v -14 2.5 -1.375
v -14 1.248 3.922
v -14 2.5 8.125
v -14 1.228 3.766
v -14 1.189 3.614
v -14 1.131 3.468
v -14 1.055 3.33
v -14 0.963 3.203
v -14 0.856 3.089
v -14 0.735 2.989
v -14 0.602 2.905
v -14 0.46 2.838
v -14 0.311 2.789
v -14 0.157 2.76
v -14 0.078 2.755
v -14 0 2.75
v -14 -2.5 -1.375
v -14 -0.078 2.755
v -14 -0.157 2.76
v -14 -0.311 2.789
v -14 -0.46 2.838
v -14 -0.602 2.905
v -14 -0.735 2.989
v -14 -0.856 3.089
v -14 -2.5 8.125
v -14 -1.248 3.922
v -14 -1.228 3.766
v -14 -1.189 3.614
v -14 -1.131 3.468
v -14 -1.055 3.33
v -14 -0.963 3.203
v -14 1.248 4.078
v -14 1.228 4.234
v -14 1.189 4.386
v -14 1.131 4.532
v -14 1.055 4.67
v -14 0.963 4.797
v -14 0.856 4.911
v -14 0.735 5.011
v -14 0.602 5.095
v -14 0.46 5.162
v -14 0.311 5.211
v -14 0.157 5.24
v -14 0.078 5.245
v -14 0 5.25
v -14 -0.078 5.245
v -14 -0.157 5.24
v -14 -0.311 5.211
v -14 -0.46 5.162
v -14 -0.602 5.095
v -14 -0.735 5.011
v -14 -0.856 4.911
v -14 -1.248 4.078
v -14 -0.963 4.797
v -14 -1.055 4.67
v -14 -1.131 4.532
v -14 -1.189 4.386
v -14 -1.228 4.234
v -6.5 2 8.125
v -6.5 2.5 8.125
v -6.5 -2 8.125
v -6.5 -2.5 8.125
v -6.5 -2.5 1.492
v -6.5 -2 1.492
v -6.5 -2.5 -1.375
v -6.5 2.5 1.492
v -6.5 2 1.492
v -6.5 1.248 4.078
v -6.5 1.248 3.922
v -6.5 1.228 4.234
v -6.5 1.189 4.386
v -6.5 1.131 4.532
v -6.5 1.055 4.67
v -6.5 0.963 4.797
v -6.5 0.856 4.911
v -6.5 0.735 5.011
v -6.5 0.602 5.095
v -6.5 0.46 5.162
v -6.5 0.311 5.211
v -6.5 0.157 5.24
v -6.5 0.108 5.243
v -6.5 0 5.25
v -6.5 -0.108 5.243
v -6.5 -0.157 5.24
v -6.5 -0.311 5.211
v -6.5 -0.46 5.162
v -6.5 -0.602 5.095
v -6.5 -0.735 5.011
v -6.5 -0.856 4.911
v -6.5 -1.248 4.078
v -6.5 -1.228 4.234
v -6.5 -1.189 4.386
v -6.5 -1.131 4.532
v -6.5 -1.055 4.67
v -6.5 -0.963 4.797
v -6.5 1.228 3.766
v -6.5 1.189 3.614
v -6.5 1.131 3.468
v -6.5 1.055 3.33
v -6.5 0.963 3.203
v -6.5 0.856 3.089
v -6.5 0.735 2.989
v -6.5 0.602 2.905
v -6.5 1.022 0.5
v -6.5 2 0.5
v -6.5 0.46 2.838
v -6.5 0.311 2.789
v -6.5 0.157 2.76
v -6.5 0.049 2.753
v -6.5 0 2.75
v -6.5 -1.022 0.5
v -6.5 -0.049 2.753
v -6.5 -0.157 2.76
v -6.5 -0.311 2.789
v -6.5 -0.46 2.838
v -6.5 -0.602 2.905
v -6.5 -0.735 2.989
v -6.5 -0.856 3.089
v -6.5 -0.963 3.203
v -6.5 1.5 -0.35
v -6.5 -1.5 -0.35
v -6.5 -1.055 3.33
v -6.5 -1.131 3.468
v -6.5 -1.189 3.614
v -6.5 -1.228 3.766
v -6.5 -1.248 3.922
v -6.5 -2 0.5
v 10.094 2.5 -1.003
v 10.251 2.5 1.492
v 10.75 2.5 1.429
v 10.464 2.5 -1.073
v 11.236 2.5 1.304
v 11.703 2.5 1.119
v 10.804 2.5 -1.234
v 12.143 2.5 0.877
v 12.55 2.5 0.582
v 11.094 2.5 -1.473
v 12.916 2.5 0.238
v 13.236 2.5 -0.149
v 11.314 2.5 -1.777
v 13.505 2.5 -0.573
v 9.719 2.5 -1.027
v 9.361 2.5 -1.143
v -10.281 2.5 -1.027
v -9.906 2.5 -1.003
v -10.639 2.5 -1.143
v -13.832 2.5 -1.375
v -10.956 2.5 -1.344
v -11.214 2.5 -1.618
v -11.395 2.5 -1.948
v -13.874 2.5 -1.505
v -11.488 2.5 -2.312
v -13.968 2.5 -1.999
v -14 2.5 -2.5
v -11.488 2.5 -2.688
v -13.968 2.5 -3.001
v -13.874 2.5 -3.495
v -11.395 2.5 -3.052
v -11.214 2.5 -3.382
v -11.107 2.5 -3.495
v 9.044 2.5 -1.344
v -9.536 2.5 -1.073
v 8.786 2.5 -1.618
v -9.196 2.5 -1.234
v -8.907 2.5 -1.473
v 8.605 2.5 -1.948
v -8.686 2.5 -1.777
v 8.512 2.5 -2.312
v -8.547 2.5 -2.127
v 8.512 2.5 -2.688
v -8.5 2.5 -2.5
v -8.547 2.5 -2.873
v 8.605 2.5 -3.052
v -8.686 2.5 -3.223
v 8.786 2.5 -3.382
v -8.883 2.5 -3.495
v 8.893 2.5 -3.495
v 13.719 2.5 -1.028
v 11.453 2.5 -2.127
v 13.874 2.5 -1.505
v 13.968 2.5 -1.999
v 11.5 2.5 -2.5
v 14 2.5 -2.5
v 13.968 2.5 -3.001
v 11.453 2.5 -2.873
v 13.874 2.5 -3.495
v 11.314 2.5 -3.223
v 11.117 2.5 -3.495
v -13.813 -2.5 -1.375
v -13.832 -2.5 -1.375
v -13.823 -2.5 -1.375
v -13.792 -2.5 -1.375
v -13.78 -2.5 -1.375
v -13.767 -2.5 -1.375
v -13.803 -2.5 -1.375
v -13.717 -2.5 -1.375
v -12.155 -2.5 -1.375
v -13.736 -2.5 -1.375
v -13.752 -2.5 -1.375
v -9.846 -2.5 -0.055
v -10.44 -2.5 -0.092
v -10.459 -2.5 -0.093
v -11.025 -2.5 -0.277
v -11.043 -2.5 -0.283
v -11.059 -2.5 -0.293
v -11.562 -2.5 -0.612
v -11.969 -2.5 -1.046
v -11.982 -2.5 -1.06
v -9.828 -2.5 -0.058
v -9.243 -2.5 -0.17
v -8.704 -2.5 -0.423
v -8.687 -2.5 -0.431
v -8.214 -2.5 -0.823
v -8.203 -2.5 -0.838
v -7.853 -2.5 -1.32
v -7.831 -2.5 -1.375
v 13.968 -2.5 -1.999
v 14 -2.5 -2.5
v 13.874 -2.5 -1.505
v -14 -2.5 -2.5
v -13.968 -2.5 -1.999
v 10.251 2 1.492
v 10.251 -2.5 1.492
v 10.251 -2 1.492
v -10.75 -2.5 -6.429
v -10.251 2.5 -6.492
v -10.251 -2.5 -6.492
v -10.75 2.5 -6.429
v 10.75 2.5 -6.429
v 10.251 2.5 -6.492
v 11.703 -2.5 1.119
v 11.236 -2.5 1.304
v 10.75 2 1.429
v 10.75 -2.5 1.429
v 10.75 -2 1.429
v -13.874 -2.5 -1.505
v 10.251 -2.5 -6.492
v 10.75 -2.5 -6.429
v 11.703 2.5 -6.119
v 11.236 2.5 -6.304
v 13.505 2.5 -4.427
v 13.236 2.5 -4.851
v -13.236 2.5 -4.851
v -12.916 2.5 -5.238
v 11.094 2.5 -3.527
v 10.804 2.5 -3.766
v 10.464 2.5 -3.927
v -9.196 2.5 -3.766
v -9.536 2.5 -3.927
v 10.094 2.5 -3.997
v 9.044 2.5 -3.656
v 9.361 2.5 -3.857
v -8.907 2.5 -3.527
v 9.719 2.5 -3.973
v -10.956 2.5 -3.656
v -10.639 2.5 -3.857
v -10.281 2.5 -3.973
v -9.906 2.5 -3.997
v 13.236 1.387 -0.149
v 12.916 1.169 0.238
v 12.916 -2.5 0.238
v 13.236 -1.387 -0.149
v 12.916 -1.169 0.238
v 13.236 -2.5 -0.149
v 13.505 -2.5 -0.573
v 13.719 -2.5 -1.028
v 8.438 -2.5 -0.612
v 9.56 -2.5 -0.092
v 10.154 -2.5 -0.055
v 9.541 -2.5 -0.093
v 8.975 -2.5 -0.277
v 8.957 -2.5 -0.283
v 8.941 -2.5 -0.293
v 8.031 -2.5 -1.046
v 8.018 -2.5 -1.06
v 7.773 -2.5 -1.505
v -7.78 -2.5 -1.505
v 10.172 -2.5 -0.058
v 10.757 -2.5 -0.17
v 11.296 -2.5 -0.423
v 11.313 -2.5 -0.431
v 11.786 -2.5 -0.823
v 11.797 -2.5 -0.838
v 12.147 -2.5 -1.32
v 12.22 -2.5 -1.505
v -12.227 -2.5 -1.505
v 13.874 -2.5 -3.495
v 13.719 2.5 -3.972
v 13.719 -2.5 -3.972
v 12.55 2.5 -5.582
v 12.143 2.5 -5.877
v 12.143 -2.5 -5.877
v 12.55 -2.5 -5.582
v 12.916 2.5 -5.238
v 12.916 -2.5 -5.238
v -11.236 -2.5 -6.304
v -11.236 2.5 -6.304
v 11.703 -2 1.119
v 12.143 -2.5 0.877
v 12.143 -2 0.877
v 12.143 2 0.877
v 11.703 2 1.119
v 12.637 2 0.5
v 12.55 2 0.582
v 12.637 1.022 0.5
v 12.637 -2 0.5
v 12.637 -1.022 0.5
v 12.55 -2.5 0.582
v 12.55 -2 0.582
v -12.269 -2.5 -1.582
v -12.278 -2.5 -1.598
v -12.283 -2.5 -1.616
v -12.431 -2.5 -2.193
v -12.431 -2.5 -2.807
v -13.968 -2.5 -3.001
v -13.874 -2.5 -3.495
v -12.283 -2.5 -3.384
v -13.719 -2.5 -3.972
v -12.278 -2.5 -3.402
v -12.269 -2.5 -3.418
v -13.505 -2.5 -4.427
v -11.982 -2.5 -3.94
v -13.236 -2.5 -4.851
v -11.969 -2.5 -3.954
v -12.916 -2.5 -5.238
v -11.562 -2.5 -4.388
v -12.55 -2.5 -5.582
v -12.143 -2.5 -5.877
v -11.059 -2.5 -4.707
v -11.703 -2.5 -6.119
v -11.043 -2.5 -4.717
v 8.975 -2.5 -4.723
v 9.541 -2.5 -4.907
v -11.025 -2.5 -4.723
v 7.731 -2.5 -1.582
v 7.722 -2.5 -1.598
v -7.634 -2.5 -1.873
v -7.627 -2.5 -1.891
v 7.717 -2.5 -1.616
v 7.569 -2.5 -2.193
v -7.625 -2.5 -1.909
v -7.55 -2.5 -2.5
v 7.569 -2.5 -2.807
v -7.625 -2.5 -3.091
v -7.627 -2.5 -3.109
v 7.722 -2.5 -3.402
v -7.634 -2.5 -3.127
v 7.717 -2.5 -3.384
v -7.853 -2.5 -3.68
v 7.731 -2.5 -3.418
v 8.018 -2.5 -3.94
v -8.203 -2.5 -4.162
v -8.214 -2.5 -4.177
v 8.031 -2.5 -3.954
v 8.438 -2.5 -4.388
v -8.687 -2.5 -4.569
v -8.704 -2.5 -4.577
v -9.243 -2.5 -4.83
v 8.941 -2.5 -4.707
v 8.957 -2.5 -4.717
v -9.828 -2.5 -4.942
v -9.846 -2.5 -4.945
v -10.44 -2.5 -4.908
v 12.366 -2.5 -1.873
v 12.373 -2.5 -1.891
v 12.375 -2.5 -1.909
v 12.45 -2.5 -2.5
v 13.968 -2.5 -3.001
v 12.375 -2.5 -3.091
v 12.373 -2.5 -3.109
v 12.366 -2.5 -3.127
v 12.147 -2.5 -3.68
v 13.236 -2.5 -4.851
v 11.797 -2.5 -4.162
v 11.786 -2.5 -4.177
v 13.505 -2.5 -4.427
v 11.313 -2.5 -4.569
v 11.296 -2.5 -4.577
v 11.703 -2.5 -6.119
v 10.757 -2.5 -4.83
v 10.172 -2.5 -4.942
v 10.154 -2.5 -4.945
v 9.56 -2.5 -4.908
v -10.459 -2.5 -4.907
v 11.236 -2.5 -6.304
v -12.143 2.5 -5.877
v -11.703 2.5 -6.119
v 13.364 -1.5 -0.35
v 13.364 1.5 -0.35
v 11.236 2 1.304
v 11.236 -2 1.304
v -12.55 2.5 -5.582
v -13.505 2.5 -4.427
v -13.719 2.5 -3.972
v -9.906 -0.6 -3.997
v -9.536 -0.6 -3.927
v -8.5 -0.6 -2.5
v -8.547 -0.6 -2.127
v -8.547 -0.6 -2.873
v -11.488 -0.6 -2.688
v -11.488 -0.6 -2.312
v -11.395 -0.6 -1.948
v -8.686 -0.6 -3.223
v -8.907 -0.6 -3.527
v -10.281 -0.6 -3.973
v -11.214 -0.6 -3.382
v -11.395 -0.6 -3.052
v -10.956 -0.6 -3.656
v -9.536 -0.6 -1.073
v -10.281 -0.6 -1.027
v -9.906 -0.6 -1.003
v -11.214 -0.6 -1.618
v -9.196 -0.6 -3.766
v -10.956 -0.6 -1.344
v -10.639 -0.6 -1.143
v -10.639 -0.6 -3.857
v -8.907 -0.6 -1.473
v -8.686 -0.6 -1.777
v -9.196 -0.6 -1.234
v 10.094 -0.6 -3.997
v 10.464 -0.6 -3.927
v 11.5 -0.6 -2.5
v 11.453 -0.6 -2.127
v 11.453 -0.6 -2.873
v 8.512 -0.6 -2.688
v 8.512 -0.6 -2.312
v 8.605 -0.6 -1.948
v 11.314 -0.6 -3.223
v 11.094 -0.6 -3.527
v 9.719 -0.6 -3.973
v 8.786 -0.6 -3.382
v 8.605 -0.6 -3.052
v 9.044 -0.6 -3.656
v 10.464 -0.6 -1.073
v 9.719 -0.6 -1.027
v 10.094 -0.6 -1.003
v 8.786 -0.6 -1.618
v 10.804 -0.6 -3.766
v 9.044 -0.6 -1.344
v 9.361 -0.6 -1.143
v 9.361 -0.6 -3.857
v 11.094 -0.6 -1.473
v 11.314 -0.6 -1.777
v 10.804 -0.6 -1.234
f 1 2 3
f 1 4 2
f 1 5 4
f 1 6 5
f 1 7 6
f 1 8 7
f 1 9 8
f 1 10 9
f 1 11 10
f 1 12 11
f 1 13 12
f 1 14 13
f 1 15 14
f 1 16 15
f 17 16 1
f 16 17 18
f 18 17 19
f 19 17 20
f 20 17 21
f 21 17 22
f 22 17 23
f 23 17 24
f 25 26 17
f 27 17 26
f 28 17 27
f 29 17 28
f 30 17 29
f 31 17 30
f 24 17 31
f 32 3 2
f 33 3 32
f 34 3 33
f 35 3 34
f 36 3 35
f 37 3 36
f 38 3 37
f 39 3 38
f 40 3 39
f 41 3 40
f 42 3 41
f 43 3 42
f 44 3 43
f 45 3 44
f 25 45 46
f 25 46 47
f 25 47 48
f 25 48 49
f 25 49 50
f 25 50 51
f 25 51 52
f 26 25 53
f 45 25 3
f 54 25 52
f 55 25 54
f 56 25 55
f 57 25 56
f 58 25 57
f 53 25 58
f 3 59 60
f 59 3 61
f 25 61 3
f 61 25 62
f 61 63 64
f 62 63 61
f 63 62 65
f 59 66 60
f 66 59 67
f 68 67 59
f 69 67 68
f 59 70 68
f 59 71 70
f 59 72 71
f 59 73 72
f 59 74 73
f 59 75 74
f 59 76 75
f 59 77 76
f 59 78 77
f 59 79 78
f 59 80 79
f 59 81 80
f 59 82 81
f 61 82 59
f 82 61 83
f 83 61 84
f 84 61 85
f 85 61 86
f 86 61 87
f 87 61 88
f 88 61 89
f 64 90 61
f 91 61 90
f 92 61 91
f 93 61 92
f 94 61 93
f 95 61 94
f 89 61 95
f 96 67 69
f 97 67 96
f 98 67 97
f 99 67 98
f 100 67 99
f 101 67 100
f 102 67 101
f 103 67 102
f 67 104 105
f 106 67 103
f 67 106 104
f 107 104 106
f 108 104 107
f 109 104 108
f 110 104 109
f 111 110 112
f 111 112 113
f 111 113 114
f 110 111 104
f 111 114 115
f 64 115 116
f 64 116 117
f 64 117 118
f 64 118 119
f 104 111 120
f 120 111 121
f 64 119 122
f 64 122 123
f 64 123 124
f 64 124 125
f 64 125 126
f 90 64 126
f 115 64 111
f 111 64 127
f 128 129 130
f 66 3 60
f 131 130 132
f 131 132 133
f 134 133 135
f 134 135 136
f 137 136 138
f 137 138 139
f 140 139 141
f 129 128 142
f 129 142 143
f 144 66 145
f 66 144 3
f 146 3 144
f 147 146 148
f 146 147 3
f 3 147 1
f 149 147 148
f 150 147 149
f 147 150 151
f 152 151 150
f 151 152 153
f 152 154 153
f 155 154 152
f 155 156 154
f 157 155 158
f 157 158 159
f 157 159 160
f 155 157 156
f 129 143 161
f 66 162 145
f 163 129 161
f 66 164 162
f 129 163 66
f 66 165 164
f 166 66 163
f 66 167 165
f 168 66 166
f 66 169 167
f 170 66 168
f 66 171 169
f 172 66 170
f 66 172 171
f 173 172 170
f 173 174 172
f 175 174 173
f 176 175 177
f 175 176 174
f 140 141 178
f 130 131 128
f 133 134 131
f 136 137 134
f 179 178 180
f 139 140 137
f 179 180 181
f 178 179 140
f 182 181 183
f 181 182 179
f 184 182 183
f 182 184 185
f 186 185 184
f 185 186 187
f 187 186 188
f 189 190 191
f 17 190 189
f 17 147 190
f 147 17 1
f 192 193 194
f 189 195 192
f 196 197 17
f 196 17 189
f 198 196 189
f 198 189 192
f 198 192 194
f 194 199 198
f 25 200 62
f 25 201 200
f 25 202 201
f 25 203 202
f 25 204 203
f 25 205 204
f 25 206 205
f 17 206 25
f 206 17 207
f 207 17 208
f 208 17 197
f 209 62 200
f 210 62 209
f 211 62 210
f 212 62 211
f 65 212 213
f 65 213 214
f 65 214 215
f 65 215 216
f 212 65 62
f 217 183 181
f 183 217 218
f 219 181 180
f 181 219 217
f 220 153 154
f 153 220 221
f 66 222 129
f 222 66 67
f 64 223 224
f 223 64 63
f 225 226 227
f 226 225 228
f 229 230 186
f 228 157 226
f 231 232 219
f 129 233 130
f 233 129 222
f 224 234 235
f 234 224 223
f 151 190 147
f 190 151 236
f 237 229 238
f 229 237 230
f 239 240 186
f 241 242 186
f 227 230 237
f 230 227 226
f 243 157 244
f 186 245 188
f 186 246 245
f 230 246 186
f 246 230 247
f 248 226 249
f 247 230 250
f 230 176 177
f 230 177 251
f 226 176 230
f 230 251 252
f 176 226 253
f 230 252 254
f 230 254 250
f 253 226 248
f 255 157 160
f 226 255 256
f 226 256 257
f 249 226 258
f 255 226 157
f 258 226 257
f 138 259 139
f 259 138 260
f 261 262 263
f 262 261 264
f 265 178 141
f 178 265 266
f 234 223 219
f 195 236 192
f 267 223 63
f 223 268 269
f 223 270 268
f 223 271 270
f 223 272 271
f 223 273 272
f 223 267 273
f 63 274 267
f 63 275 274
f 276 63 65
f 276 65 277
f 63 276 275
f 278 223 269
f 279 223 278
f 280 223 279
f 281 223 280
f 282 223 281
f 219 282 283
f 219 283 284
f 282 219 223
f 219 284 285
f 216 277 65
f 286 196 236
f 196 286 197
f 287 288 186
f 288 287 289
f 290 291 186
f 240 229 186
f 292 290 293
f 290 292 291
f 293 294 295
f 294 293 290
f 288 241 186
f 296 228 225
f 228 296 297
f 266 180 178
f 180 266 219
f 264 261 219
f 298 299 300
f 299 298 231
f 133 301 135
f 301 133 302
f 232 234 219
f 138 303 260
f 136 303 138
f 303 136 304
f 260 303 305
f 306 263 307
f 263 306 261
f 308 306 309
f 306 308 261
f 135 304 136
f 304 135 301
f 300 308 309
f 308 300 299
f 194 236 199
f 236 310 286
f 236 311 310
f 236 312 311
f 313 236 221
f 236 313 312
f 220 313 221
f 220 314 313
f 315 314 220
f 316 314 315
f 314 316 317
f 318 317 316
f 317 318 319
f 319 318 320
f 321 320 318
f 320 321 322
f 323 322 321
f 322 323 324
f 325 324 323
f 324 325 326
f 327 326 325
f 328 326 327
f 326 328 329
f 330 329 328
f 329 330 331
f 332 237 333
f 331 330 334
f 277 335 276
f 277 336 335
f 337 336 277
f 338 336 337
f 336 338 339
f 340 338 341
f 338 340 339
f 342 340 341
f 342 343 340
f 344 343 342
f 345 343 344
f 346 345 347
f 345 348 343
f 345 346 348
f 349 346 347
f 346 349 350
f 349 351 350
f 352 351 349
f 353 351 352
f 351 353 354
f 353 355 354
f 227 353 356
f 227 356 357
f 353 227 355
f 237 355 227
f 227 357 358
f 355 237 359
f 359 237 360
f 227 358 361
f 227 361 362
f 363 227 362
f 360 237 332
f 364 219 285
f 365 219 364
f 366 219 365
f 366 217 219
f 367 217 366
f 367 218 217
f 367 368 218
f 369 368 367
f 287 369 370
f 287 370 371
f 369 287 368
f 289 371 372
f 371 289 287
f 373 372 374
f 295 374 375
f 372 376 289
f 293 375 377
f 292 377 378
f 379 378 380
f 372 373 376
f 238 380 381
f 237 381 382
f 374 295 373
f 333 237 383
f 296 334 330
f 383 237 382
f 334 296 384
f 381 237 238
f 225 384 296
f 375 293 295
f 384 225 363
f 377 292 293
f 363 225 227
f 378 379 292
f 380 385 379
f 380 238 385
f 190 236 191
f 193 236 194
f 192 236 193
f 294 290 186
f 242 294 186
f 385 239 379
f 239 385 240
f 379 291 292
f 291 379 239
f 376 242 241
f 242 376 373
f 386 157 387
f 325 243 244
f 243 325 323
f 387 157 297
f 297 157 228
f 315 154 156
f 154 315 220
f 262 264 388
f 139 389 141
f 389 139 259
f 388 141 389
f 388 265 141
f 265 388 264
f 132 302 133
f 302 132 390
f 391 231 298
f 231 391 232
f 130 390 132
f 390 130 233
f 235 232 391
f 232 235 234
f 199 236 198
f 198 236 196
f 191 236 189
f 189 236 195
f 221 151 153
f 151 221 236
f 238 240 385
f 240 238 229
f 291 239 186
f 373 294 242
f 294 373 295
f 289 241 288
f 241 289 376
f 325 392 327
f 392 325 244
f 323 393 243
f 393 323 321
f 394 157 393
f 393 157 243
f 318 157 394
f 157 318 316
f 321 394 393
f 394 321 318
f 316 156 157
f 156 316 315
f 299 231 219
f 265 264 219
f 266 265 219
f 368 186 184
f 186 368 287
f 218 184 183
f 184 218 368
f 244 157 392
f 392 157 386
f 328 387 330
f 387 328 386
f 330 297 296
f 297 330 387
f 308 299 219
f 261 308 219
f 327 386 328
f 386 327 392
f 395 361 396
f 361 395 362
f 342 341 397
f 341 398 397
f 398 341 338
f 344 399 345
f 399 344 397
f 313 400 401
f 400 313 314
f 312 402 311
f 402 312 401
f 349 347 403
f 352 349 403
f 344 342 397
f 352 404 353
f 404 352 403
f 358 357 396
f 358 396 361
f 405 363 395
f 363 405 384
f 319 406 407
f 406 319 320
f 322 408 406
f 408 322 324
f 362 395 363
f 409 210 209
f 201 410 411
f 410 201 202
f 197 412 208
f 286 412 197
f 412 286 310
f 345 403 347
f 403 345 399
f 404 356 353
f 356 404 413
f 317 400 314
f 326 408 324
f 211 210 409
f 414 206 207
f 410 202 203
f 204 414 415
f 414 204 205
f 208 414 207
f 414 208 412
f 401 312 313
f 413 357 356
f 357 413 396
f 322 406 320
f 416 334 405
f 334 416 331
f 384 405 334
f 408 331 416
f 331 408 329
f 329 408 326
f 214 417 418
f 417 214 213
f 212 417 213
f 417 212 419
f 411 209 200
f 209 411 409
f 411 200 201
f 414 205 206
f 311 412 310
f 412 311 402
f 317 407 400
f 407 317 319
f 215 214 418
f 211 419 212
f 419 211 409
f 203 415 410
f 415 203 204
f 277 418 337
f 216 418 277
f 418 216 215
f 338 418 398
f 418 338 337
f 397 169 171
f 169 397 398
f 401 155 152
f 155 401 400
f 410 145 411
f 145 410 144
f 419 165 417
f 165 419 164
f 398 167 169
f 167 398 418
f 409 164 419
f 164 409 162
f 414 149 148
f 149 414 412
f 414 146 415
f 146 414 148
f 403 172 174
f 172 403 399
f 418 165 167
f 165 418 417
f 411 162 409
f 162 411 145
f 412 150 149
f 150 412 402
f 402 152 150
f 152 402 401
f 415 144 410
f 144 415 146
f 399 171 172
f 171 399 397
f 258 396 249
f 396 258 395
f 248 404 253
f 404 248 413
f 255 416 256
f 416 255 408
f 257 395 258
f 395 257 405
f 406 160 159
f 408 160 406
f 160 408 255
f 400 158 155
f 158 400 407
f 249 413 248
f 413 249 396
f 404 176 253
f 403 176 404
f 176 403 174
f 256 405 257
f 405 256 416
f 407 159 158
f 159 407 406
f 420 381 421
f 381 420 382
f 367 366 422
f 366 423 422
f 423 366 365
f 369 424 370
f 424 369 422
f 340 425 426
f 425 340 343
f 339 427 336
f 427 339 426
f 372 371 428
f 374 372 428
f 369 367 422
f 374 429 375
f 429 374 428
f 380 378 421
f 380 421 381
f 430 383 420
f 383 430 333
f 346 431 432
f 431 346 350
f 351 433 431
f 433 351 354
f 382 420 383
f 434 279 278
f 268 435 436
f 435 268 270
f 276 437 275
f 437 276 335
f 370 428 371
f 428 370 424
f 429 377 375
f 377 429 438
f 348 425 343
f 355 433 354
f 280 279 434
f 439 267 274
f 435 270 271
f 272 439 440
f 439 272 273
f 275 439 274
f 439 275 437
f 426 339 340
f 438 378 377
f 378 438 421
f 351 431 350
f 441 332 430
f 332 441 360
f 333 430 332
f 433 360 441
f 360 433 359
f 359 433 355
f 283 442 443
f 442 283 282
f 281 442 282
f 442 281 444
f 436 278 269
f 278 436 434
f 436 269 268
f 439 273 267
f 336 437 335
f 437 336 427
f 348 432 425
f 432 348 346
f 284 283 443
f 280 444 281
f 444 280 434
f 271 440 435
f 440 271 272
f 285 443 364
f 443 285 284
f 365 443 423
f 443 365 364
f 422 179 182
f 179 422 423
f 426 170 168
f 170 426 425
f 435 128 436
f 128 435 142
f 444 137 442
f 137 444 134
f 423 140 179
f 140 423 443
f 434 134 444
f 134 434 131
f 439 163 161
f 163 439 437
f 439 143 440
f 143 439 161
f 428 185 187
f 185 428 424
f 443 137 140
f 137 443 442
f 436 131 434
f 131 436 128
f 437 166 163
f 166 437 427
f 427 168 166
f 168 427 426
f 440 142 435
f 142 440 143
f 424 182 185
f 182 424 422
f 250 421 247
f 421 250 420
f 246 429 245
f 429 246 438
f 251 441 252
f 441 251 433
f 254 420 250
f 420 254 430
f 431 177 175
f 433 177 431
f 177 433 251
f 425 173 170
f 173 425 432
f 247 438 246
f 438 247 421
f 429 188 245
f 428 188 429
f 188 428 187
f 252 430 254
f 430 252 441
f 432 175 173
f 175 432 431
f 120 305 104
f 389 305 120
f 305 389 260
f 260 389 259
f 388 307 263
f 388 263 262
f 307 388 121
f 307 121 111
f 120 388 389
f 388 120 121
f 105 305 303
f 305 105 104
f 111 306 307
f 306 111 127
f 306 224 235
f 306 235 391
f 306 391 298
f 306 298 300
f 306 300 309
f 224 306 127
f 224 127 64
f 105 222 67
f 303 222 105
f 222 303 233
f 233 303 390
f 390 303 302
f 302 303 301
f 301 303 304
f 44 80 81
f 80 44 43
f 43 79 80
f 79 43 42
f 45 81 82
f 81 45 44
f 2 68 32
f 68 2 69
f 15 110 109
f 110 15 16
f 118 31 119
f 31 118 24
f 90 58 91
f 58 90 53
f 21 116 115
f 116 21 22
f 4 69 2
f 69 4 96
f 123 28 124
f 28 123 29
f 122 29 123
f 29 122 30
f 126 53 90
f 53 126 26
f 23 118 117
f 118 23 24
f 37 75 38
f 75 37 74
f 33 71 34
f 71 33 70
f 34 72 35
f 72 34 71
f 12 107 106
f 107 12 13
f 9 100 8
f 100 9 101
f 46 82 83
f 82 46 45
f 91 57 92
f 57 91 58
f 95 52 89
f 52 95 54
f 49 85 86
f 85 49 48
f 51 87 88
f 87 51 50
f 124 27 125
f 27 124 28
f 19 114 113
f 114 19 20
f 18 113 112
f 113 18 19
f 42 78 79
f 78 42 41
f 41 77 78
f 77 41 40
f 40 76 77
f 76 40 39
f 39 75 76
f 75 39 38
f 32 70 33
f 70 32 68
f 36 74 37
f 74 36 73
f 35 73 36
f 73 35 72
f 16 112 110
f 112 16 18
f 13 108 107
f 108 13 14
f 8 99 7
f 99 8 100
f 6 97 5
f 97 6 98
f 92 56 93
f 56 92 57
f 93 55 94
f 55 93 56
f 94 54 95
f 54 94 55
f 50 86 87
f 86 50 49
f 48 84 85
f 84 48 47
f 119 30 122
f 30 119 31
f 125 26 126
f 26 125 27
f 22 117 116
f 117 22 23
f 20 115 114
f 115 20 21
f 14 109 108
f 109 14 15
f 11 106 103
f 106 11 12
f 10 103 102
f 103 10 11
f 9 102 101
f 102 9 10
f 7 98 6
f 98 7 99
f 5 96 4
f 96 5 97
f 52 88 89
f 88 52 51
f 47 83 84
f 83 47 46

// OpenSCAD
// file: openscad-extra/src/nut.scad
module make_hex_nut(w, h, d=0){
    // d = inner diameter
    // w = width across the flats
    // h = height or thickness
    s = w/sqrt(3);
    difference(){
        union(){
            for(i=[0:1:2]){
                rotate([0,0,120*i])
                cube([w, s, h], center=true);
            }
        }
        if(d){
            cylinder(d=d, h=h+1, center=true);
        }
    }
}

//make_hex_nut(w=5, h=2, d=2.5);

module make_nut_2(d=2){
    make_hex_nut(w=4.8, h=2, d=d);
}

module make_nut_w4_h1p5(d=2){
    make_hex_nut(w=4, h=1.5, d=d);
}

module make_nut_2_5(d=2, h=3.5){
    make_hex_nut(w=5+0.5/2, h=h, d=d);
}

module make_nut_2_5_test(){
    difference(){
        translate([0,0,-.5])
        cube([10,10,2], center=true);
        make_nut_2_5(d=0);
    }
}

module make_nut_2_5_test_downward(){
    difference(){
        translate([0,0,1])
        cube([10,10,2*2.5], center=true);
        color("red")
        make_nut_2_5(d=0);
        color("blue")
        cylinder(d=2.5, h=10, center=true);
    }
}

module make_nut_2_5_test_punchout(){
    difference(){
        translate([0,0,1.5])
        cube([10,10,2*1.5], center=true);
        color("red")
        make_nut_2_5(d=0);
        color("blue")
        cylinder(d=2.5, h=10, center=true);
    }
    color("green")
    translate([0,0,1.8])
    cube([10,10,0.25], center=true);
}

//make_nut_2_5_test();
make_nut_w4_h1p5();
//make_nut_2_5_test_downward();
//make_nut_2_5_test_punchout();
// file: openscad-extra/src/countersink.scad
/*
Countersink depression for tapered screw heads.
*/

module make_countersink(d1=0, d2=0, h=0, outer=10, inner=0, $fn=25){
    /*
    d1 = shaft diameter
    d2 = head diameter
    h = height of taper
    outer = height of head mass
    inner = height of shaft mass, including taper
    */
    default_taper_height = 2;
    d1 = d1 ? d1 : 2.5;
    d2 = d2 ? d2 : 5;
    h = h ? h : default_taper_height;
    inner = (inner ? inner : 10) - default_taper_height;
    
    translate([0, 0, -default_taper_height/2])
    union(){
        
        // taper
        cylinder(d1=d1, d2=d2, h=h, center=true, $fn=$fn);
    
        // big top
    	translate([0, 0, h/2])
    	cylinder(d=d2, h=outer, center=false, $fn=$fn);
        
    	// lower bottom
    	translate([0, 0, -h/2-inner])
    	cylinder(d=d1, h=inner, center=false, $fn=$fn);
	}
}

make_countersink(inner=10);

color("blue")
translate([0,2,0])
cylinder(d=2.5, h=20, center=true, $fn=100);
// file: leg_knee_tendon_anchor.scad
use <openscad-extra/src/countersink.scad>;
use <openscad-extra/src/nut.scad>;

module leg_knee_tendon_anchor_slot(width=3, width_buffer=0, height=1){
    linear_extrude(height=30)
    polygon([
        [(width+width_buffer)/2,0],
        [(width+width_buffer)/2/4,height],
        [-(width+width_buffer)/2/4,height],
        [-(width+width_buffer)/2,0]]);
}

module leg_knee_tendon_anchor_top_base(buffer=0){
    
    // track cutout
    translate([-1.5,0,-1+.15])
    rotate([0,90,0])
    rotate([0,0,90])
    leg_knee_tendon_anchor_slot(width_buffer=buffer*2, height=2);
    
    // slot cutout
    translate([20/2-1.5,0,2.5+5/2])
    cube([20, 4+buffer*2, 10], center=true);
    
}

module leg_knee_tendon_anchor_top(){
    
    wire_x = 12+5;
    wire_z = 6-0.1;
    wire_d = 6.46;
    
    difference(){
        union(){
            intersection(){
                
                // track mass
                if(1)
                translate([0,0,1.5])
                leg_knee_tendon_anchor_top_base(buffer=-0.25);
                
                // bounding box
                if(1)
                color("blue")
                translate([5+2,0,4.125])
                cube([15,10,10], center=true);
            }

            // top mass
            color("blue")
            translate([5+2,0,5.5+.25+.05+0.15/2])
            cube([15,5,6.5], center=true);
                
            // tendon mount mass
            hull(){
                translate([wire_x,0,wire_z])
                rotate([90,0,0])
                cylinder(d=wire_d, h=5, center=true, $fn=50);
                
                translate([6,0,wire_z])
                rotate([90,0,0])
                cylinder(d=wire_d, h=5, center=true, $fn=50);
            }
            
        }
        
        // small hux nut cutout
        if(0)
        color("red")
        hull()
        for(i=[0:1])
        translate([2,i*5,5])
        rotate([0,90,0])
        rotate([0,0,30])
        make_hex_nut(w=5, h=2, d=0);

        // hex nut cutout
        hull(){
            for(i=[0:3])
            translate([4,i,5])
            rotate([0,90,0])
            rotate([0,0,60/2])
            make_hex_nut(w=5.1, h=4, d=0);
        }

        // axle hole
        translate([0,0,5])
        rotate([0,90,0])
        cylinder(d=2.5, h=100, center=true, $fn=50);
            
        // wire slot cutout
        color("red")
        translate([wire_x,0,wire_z])
        rotate([90,0,0])
        cylinder(d=8, h=2, center=true, $fn=50);
    
        // wire screw hole
        color("red")
        translate([wire_x,0,wire_z])
        rotate([90,0,0])
        cylinder(d=2, h=20, center=true, $fn=50);

    }
    
}

module leg_knee_tendon_anchor_bottom(){
    
    axle_offset_z = -.5+3;
    axle_mass_h = 7.5+2;
    
    difference(){
        union(){
            // main mass
            if(0)
            translate([0,0,-2.5/2])
            cube([25, 5, 5+2.5], center=true);
            
            // axle mount mass
            color("blue")
            translate([-10/2-5/2-2.5/2+1-5/2, 0, axle_mass_h/2/2+axle_offset_z-1.5])
            cube([12.5-5, 5, axle_mass_h], center=true);
            
            if(1)
            hull()
            translate([0,0,-2.5])
            for(i=[-1:2:1])
            translate([2.5*4*i,0,0])
            rotate([90,0,0])
            cylinder(d=8, h=5, center=true, $fn=50);
        }
        
        // mount holes
        translate([0,0,-2.5])
        for(i=[-1:2:1])
        color("red")
        translate([2.5*4*i,-2.6,0])
        rotate([90,0,0])
        make_countersink(d1=3);
        
        // flattening cutout
        if(0)
        translate([7,0,5+5/2])
        cube([25, 6, 10], center=true);
        
        // hex nut cutout
        if(0)
        translate([2,0,-4+axle_offset_z])
        hull(){
            for(i=[0:3])
            translate([-7.5,i,5+.5])
            rotate([0,90,0])
            rotate([0,0,60/2])
            make_hex_nut(w=5.1, h=4, d=0);
        }
    
        // main axle cutout
        translate([-14,0,1.5+axle_offset_z])
        rotate([0,-90,0])
        //make_countersink(d1=3, inner=40);
        cylinder(d=2.5, h=40, center=true, $fn=50);
        
        translate([-5,0,.5]){
            //color("red")
            leg_knee_tendon_anchor_top_base();
        }
            
    }
    
}

if(1)
//color("green")
translate([0,0,-1])
leg_knee_tendon_anchor_top();

leg_knee_tendon_anchor_bottom();

color("green")
translate([0,0,1+3])
rotate([0,90,0])
cylinder(d=1, h=100, center=true, $fn=50);

if(0)
color("red")
for(i=[0:10])
translate([5*i-20,0,0])
rotate([90,0,0])
cylinder(d=1, h=100, center=true, $fn=50);
// main file
use <leg_knee_tendon_anchor.scad>;


leg_knee_tendon_anchor_bottom();
